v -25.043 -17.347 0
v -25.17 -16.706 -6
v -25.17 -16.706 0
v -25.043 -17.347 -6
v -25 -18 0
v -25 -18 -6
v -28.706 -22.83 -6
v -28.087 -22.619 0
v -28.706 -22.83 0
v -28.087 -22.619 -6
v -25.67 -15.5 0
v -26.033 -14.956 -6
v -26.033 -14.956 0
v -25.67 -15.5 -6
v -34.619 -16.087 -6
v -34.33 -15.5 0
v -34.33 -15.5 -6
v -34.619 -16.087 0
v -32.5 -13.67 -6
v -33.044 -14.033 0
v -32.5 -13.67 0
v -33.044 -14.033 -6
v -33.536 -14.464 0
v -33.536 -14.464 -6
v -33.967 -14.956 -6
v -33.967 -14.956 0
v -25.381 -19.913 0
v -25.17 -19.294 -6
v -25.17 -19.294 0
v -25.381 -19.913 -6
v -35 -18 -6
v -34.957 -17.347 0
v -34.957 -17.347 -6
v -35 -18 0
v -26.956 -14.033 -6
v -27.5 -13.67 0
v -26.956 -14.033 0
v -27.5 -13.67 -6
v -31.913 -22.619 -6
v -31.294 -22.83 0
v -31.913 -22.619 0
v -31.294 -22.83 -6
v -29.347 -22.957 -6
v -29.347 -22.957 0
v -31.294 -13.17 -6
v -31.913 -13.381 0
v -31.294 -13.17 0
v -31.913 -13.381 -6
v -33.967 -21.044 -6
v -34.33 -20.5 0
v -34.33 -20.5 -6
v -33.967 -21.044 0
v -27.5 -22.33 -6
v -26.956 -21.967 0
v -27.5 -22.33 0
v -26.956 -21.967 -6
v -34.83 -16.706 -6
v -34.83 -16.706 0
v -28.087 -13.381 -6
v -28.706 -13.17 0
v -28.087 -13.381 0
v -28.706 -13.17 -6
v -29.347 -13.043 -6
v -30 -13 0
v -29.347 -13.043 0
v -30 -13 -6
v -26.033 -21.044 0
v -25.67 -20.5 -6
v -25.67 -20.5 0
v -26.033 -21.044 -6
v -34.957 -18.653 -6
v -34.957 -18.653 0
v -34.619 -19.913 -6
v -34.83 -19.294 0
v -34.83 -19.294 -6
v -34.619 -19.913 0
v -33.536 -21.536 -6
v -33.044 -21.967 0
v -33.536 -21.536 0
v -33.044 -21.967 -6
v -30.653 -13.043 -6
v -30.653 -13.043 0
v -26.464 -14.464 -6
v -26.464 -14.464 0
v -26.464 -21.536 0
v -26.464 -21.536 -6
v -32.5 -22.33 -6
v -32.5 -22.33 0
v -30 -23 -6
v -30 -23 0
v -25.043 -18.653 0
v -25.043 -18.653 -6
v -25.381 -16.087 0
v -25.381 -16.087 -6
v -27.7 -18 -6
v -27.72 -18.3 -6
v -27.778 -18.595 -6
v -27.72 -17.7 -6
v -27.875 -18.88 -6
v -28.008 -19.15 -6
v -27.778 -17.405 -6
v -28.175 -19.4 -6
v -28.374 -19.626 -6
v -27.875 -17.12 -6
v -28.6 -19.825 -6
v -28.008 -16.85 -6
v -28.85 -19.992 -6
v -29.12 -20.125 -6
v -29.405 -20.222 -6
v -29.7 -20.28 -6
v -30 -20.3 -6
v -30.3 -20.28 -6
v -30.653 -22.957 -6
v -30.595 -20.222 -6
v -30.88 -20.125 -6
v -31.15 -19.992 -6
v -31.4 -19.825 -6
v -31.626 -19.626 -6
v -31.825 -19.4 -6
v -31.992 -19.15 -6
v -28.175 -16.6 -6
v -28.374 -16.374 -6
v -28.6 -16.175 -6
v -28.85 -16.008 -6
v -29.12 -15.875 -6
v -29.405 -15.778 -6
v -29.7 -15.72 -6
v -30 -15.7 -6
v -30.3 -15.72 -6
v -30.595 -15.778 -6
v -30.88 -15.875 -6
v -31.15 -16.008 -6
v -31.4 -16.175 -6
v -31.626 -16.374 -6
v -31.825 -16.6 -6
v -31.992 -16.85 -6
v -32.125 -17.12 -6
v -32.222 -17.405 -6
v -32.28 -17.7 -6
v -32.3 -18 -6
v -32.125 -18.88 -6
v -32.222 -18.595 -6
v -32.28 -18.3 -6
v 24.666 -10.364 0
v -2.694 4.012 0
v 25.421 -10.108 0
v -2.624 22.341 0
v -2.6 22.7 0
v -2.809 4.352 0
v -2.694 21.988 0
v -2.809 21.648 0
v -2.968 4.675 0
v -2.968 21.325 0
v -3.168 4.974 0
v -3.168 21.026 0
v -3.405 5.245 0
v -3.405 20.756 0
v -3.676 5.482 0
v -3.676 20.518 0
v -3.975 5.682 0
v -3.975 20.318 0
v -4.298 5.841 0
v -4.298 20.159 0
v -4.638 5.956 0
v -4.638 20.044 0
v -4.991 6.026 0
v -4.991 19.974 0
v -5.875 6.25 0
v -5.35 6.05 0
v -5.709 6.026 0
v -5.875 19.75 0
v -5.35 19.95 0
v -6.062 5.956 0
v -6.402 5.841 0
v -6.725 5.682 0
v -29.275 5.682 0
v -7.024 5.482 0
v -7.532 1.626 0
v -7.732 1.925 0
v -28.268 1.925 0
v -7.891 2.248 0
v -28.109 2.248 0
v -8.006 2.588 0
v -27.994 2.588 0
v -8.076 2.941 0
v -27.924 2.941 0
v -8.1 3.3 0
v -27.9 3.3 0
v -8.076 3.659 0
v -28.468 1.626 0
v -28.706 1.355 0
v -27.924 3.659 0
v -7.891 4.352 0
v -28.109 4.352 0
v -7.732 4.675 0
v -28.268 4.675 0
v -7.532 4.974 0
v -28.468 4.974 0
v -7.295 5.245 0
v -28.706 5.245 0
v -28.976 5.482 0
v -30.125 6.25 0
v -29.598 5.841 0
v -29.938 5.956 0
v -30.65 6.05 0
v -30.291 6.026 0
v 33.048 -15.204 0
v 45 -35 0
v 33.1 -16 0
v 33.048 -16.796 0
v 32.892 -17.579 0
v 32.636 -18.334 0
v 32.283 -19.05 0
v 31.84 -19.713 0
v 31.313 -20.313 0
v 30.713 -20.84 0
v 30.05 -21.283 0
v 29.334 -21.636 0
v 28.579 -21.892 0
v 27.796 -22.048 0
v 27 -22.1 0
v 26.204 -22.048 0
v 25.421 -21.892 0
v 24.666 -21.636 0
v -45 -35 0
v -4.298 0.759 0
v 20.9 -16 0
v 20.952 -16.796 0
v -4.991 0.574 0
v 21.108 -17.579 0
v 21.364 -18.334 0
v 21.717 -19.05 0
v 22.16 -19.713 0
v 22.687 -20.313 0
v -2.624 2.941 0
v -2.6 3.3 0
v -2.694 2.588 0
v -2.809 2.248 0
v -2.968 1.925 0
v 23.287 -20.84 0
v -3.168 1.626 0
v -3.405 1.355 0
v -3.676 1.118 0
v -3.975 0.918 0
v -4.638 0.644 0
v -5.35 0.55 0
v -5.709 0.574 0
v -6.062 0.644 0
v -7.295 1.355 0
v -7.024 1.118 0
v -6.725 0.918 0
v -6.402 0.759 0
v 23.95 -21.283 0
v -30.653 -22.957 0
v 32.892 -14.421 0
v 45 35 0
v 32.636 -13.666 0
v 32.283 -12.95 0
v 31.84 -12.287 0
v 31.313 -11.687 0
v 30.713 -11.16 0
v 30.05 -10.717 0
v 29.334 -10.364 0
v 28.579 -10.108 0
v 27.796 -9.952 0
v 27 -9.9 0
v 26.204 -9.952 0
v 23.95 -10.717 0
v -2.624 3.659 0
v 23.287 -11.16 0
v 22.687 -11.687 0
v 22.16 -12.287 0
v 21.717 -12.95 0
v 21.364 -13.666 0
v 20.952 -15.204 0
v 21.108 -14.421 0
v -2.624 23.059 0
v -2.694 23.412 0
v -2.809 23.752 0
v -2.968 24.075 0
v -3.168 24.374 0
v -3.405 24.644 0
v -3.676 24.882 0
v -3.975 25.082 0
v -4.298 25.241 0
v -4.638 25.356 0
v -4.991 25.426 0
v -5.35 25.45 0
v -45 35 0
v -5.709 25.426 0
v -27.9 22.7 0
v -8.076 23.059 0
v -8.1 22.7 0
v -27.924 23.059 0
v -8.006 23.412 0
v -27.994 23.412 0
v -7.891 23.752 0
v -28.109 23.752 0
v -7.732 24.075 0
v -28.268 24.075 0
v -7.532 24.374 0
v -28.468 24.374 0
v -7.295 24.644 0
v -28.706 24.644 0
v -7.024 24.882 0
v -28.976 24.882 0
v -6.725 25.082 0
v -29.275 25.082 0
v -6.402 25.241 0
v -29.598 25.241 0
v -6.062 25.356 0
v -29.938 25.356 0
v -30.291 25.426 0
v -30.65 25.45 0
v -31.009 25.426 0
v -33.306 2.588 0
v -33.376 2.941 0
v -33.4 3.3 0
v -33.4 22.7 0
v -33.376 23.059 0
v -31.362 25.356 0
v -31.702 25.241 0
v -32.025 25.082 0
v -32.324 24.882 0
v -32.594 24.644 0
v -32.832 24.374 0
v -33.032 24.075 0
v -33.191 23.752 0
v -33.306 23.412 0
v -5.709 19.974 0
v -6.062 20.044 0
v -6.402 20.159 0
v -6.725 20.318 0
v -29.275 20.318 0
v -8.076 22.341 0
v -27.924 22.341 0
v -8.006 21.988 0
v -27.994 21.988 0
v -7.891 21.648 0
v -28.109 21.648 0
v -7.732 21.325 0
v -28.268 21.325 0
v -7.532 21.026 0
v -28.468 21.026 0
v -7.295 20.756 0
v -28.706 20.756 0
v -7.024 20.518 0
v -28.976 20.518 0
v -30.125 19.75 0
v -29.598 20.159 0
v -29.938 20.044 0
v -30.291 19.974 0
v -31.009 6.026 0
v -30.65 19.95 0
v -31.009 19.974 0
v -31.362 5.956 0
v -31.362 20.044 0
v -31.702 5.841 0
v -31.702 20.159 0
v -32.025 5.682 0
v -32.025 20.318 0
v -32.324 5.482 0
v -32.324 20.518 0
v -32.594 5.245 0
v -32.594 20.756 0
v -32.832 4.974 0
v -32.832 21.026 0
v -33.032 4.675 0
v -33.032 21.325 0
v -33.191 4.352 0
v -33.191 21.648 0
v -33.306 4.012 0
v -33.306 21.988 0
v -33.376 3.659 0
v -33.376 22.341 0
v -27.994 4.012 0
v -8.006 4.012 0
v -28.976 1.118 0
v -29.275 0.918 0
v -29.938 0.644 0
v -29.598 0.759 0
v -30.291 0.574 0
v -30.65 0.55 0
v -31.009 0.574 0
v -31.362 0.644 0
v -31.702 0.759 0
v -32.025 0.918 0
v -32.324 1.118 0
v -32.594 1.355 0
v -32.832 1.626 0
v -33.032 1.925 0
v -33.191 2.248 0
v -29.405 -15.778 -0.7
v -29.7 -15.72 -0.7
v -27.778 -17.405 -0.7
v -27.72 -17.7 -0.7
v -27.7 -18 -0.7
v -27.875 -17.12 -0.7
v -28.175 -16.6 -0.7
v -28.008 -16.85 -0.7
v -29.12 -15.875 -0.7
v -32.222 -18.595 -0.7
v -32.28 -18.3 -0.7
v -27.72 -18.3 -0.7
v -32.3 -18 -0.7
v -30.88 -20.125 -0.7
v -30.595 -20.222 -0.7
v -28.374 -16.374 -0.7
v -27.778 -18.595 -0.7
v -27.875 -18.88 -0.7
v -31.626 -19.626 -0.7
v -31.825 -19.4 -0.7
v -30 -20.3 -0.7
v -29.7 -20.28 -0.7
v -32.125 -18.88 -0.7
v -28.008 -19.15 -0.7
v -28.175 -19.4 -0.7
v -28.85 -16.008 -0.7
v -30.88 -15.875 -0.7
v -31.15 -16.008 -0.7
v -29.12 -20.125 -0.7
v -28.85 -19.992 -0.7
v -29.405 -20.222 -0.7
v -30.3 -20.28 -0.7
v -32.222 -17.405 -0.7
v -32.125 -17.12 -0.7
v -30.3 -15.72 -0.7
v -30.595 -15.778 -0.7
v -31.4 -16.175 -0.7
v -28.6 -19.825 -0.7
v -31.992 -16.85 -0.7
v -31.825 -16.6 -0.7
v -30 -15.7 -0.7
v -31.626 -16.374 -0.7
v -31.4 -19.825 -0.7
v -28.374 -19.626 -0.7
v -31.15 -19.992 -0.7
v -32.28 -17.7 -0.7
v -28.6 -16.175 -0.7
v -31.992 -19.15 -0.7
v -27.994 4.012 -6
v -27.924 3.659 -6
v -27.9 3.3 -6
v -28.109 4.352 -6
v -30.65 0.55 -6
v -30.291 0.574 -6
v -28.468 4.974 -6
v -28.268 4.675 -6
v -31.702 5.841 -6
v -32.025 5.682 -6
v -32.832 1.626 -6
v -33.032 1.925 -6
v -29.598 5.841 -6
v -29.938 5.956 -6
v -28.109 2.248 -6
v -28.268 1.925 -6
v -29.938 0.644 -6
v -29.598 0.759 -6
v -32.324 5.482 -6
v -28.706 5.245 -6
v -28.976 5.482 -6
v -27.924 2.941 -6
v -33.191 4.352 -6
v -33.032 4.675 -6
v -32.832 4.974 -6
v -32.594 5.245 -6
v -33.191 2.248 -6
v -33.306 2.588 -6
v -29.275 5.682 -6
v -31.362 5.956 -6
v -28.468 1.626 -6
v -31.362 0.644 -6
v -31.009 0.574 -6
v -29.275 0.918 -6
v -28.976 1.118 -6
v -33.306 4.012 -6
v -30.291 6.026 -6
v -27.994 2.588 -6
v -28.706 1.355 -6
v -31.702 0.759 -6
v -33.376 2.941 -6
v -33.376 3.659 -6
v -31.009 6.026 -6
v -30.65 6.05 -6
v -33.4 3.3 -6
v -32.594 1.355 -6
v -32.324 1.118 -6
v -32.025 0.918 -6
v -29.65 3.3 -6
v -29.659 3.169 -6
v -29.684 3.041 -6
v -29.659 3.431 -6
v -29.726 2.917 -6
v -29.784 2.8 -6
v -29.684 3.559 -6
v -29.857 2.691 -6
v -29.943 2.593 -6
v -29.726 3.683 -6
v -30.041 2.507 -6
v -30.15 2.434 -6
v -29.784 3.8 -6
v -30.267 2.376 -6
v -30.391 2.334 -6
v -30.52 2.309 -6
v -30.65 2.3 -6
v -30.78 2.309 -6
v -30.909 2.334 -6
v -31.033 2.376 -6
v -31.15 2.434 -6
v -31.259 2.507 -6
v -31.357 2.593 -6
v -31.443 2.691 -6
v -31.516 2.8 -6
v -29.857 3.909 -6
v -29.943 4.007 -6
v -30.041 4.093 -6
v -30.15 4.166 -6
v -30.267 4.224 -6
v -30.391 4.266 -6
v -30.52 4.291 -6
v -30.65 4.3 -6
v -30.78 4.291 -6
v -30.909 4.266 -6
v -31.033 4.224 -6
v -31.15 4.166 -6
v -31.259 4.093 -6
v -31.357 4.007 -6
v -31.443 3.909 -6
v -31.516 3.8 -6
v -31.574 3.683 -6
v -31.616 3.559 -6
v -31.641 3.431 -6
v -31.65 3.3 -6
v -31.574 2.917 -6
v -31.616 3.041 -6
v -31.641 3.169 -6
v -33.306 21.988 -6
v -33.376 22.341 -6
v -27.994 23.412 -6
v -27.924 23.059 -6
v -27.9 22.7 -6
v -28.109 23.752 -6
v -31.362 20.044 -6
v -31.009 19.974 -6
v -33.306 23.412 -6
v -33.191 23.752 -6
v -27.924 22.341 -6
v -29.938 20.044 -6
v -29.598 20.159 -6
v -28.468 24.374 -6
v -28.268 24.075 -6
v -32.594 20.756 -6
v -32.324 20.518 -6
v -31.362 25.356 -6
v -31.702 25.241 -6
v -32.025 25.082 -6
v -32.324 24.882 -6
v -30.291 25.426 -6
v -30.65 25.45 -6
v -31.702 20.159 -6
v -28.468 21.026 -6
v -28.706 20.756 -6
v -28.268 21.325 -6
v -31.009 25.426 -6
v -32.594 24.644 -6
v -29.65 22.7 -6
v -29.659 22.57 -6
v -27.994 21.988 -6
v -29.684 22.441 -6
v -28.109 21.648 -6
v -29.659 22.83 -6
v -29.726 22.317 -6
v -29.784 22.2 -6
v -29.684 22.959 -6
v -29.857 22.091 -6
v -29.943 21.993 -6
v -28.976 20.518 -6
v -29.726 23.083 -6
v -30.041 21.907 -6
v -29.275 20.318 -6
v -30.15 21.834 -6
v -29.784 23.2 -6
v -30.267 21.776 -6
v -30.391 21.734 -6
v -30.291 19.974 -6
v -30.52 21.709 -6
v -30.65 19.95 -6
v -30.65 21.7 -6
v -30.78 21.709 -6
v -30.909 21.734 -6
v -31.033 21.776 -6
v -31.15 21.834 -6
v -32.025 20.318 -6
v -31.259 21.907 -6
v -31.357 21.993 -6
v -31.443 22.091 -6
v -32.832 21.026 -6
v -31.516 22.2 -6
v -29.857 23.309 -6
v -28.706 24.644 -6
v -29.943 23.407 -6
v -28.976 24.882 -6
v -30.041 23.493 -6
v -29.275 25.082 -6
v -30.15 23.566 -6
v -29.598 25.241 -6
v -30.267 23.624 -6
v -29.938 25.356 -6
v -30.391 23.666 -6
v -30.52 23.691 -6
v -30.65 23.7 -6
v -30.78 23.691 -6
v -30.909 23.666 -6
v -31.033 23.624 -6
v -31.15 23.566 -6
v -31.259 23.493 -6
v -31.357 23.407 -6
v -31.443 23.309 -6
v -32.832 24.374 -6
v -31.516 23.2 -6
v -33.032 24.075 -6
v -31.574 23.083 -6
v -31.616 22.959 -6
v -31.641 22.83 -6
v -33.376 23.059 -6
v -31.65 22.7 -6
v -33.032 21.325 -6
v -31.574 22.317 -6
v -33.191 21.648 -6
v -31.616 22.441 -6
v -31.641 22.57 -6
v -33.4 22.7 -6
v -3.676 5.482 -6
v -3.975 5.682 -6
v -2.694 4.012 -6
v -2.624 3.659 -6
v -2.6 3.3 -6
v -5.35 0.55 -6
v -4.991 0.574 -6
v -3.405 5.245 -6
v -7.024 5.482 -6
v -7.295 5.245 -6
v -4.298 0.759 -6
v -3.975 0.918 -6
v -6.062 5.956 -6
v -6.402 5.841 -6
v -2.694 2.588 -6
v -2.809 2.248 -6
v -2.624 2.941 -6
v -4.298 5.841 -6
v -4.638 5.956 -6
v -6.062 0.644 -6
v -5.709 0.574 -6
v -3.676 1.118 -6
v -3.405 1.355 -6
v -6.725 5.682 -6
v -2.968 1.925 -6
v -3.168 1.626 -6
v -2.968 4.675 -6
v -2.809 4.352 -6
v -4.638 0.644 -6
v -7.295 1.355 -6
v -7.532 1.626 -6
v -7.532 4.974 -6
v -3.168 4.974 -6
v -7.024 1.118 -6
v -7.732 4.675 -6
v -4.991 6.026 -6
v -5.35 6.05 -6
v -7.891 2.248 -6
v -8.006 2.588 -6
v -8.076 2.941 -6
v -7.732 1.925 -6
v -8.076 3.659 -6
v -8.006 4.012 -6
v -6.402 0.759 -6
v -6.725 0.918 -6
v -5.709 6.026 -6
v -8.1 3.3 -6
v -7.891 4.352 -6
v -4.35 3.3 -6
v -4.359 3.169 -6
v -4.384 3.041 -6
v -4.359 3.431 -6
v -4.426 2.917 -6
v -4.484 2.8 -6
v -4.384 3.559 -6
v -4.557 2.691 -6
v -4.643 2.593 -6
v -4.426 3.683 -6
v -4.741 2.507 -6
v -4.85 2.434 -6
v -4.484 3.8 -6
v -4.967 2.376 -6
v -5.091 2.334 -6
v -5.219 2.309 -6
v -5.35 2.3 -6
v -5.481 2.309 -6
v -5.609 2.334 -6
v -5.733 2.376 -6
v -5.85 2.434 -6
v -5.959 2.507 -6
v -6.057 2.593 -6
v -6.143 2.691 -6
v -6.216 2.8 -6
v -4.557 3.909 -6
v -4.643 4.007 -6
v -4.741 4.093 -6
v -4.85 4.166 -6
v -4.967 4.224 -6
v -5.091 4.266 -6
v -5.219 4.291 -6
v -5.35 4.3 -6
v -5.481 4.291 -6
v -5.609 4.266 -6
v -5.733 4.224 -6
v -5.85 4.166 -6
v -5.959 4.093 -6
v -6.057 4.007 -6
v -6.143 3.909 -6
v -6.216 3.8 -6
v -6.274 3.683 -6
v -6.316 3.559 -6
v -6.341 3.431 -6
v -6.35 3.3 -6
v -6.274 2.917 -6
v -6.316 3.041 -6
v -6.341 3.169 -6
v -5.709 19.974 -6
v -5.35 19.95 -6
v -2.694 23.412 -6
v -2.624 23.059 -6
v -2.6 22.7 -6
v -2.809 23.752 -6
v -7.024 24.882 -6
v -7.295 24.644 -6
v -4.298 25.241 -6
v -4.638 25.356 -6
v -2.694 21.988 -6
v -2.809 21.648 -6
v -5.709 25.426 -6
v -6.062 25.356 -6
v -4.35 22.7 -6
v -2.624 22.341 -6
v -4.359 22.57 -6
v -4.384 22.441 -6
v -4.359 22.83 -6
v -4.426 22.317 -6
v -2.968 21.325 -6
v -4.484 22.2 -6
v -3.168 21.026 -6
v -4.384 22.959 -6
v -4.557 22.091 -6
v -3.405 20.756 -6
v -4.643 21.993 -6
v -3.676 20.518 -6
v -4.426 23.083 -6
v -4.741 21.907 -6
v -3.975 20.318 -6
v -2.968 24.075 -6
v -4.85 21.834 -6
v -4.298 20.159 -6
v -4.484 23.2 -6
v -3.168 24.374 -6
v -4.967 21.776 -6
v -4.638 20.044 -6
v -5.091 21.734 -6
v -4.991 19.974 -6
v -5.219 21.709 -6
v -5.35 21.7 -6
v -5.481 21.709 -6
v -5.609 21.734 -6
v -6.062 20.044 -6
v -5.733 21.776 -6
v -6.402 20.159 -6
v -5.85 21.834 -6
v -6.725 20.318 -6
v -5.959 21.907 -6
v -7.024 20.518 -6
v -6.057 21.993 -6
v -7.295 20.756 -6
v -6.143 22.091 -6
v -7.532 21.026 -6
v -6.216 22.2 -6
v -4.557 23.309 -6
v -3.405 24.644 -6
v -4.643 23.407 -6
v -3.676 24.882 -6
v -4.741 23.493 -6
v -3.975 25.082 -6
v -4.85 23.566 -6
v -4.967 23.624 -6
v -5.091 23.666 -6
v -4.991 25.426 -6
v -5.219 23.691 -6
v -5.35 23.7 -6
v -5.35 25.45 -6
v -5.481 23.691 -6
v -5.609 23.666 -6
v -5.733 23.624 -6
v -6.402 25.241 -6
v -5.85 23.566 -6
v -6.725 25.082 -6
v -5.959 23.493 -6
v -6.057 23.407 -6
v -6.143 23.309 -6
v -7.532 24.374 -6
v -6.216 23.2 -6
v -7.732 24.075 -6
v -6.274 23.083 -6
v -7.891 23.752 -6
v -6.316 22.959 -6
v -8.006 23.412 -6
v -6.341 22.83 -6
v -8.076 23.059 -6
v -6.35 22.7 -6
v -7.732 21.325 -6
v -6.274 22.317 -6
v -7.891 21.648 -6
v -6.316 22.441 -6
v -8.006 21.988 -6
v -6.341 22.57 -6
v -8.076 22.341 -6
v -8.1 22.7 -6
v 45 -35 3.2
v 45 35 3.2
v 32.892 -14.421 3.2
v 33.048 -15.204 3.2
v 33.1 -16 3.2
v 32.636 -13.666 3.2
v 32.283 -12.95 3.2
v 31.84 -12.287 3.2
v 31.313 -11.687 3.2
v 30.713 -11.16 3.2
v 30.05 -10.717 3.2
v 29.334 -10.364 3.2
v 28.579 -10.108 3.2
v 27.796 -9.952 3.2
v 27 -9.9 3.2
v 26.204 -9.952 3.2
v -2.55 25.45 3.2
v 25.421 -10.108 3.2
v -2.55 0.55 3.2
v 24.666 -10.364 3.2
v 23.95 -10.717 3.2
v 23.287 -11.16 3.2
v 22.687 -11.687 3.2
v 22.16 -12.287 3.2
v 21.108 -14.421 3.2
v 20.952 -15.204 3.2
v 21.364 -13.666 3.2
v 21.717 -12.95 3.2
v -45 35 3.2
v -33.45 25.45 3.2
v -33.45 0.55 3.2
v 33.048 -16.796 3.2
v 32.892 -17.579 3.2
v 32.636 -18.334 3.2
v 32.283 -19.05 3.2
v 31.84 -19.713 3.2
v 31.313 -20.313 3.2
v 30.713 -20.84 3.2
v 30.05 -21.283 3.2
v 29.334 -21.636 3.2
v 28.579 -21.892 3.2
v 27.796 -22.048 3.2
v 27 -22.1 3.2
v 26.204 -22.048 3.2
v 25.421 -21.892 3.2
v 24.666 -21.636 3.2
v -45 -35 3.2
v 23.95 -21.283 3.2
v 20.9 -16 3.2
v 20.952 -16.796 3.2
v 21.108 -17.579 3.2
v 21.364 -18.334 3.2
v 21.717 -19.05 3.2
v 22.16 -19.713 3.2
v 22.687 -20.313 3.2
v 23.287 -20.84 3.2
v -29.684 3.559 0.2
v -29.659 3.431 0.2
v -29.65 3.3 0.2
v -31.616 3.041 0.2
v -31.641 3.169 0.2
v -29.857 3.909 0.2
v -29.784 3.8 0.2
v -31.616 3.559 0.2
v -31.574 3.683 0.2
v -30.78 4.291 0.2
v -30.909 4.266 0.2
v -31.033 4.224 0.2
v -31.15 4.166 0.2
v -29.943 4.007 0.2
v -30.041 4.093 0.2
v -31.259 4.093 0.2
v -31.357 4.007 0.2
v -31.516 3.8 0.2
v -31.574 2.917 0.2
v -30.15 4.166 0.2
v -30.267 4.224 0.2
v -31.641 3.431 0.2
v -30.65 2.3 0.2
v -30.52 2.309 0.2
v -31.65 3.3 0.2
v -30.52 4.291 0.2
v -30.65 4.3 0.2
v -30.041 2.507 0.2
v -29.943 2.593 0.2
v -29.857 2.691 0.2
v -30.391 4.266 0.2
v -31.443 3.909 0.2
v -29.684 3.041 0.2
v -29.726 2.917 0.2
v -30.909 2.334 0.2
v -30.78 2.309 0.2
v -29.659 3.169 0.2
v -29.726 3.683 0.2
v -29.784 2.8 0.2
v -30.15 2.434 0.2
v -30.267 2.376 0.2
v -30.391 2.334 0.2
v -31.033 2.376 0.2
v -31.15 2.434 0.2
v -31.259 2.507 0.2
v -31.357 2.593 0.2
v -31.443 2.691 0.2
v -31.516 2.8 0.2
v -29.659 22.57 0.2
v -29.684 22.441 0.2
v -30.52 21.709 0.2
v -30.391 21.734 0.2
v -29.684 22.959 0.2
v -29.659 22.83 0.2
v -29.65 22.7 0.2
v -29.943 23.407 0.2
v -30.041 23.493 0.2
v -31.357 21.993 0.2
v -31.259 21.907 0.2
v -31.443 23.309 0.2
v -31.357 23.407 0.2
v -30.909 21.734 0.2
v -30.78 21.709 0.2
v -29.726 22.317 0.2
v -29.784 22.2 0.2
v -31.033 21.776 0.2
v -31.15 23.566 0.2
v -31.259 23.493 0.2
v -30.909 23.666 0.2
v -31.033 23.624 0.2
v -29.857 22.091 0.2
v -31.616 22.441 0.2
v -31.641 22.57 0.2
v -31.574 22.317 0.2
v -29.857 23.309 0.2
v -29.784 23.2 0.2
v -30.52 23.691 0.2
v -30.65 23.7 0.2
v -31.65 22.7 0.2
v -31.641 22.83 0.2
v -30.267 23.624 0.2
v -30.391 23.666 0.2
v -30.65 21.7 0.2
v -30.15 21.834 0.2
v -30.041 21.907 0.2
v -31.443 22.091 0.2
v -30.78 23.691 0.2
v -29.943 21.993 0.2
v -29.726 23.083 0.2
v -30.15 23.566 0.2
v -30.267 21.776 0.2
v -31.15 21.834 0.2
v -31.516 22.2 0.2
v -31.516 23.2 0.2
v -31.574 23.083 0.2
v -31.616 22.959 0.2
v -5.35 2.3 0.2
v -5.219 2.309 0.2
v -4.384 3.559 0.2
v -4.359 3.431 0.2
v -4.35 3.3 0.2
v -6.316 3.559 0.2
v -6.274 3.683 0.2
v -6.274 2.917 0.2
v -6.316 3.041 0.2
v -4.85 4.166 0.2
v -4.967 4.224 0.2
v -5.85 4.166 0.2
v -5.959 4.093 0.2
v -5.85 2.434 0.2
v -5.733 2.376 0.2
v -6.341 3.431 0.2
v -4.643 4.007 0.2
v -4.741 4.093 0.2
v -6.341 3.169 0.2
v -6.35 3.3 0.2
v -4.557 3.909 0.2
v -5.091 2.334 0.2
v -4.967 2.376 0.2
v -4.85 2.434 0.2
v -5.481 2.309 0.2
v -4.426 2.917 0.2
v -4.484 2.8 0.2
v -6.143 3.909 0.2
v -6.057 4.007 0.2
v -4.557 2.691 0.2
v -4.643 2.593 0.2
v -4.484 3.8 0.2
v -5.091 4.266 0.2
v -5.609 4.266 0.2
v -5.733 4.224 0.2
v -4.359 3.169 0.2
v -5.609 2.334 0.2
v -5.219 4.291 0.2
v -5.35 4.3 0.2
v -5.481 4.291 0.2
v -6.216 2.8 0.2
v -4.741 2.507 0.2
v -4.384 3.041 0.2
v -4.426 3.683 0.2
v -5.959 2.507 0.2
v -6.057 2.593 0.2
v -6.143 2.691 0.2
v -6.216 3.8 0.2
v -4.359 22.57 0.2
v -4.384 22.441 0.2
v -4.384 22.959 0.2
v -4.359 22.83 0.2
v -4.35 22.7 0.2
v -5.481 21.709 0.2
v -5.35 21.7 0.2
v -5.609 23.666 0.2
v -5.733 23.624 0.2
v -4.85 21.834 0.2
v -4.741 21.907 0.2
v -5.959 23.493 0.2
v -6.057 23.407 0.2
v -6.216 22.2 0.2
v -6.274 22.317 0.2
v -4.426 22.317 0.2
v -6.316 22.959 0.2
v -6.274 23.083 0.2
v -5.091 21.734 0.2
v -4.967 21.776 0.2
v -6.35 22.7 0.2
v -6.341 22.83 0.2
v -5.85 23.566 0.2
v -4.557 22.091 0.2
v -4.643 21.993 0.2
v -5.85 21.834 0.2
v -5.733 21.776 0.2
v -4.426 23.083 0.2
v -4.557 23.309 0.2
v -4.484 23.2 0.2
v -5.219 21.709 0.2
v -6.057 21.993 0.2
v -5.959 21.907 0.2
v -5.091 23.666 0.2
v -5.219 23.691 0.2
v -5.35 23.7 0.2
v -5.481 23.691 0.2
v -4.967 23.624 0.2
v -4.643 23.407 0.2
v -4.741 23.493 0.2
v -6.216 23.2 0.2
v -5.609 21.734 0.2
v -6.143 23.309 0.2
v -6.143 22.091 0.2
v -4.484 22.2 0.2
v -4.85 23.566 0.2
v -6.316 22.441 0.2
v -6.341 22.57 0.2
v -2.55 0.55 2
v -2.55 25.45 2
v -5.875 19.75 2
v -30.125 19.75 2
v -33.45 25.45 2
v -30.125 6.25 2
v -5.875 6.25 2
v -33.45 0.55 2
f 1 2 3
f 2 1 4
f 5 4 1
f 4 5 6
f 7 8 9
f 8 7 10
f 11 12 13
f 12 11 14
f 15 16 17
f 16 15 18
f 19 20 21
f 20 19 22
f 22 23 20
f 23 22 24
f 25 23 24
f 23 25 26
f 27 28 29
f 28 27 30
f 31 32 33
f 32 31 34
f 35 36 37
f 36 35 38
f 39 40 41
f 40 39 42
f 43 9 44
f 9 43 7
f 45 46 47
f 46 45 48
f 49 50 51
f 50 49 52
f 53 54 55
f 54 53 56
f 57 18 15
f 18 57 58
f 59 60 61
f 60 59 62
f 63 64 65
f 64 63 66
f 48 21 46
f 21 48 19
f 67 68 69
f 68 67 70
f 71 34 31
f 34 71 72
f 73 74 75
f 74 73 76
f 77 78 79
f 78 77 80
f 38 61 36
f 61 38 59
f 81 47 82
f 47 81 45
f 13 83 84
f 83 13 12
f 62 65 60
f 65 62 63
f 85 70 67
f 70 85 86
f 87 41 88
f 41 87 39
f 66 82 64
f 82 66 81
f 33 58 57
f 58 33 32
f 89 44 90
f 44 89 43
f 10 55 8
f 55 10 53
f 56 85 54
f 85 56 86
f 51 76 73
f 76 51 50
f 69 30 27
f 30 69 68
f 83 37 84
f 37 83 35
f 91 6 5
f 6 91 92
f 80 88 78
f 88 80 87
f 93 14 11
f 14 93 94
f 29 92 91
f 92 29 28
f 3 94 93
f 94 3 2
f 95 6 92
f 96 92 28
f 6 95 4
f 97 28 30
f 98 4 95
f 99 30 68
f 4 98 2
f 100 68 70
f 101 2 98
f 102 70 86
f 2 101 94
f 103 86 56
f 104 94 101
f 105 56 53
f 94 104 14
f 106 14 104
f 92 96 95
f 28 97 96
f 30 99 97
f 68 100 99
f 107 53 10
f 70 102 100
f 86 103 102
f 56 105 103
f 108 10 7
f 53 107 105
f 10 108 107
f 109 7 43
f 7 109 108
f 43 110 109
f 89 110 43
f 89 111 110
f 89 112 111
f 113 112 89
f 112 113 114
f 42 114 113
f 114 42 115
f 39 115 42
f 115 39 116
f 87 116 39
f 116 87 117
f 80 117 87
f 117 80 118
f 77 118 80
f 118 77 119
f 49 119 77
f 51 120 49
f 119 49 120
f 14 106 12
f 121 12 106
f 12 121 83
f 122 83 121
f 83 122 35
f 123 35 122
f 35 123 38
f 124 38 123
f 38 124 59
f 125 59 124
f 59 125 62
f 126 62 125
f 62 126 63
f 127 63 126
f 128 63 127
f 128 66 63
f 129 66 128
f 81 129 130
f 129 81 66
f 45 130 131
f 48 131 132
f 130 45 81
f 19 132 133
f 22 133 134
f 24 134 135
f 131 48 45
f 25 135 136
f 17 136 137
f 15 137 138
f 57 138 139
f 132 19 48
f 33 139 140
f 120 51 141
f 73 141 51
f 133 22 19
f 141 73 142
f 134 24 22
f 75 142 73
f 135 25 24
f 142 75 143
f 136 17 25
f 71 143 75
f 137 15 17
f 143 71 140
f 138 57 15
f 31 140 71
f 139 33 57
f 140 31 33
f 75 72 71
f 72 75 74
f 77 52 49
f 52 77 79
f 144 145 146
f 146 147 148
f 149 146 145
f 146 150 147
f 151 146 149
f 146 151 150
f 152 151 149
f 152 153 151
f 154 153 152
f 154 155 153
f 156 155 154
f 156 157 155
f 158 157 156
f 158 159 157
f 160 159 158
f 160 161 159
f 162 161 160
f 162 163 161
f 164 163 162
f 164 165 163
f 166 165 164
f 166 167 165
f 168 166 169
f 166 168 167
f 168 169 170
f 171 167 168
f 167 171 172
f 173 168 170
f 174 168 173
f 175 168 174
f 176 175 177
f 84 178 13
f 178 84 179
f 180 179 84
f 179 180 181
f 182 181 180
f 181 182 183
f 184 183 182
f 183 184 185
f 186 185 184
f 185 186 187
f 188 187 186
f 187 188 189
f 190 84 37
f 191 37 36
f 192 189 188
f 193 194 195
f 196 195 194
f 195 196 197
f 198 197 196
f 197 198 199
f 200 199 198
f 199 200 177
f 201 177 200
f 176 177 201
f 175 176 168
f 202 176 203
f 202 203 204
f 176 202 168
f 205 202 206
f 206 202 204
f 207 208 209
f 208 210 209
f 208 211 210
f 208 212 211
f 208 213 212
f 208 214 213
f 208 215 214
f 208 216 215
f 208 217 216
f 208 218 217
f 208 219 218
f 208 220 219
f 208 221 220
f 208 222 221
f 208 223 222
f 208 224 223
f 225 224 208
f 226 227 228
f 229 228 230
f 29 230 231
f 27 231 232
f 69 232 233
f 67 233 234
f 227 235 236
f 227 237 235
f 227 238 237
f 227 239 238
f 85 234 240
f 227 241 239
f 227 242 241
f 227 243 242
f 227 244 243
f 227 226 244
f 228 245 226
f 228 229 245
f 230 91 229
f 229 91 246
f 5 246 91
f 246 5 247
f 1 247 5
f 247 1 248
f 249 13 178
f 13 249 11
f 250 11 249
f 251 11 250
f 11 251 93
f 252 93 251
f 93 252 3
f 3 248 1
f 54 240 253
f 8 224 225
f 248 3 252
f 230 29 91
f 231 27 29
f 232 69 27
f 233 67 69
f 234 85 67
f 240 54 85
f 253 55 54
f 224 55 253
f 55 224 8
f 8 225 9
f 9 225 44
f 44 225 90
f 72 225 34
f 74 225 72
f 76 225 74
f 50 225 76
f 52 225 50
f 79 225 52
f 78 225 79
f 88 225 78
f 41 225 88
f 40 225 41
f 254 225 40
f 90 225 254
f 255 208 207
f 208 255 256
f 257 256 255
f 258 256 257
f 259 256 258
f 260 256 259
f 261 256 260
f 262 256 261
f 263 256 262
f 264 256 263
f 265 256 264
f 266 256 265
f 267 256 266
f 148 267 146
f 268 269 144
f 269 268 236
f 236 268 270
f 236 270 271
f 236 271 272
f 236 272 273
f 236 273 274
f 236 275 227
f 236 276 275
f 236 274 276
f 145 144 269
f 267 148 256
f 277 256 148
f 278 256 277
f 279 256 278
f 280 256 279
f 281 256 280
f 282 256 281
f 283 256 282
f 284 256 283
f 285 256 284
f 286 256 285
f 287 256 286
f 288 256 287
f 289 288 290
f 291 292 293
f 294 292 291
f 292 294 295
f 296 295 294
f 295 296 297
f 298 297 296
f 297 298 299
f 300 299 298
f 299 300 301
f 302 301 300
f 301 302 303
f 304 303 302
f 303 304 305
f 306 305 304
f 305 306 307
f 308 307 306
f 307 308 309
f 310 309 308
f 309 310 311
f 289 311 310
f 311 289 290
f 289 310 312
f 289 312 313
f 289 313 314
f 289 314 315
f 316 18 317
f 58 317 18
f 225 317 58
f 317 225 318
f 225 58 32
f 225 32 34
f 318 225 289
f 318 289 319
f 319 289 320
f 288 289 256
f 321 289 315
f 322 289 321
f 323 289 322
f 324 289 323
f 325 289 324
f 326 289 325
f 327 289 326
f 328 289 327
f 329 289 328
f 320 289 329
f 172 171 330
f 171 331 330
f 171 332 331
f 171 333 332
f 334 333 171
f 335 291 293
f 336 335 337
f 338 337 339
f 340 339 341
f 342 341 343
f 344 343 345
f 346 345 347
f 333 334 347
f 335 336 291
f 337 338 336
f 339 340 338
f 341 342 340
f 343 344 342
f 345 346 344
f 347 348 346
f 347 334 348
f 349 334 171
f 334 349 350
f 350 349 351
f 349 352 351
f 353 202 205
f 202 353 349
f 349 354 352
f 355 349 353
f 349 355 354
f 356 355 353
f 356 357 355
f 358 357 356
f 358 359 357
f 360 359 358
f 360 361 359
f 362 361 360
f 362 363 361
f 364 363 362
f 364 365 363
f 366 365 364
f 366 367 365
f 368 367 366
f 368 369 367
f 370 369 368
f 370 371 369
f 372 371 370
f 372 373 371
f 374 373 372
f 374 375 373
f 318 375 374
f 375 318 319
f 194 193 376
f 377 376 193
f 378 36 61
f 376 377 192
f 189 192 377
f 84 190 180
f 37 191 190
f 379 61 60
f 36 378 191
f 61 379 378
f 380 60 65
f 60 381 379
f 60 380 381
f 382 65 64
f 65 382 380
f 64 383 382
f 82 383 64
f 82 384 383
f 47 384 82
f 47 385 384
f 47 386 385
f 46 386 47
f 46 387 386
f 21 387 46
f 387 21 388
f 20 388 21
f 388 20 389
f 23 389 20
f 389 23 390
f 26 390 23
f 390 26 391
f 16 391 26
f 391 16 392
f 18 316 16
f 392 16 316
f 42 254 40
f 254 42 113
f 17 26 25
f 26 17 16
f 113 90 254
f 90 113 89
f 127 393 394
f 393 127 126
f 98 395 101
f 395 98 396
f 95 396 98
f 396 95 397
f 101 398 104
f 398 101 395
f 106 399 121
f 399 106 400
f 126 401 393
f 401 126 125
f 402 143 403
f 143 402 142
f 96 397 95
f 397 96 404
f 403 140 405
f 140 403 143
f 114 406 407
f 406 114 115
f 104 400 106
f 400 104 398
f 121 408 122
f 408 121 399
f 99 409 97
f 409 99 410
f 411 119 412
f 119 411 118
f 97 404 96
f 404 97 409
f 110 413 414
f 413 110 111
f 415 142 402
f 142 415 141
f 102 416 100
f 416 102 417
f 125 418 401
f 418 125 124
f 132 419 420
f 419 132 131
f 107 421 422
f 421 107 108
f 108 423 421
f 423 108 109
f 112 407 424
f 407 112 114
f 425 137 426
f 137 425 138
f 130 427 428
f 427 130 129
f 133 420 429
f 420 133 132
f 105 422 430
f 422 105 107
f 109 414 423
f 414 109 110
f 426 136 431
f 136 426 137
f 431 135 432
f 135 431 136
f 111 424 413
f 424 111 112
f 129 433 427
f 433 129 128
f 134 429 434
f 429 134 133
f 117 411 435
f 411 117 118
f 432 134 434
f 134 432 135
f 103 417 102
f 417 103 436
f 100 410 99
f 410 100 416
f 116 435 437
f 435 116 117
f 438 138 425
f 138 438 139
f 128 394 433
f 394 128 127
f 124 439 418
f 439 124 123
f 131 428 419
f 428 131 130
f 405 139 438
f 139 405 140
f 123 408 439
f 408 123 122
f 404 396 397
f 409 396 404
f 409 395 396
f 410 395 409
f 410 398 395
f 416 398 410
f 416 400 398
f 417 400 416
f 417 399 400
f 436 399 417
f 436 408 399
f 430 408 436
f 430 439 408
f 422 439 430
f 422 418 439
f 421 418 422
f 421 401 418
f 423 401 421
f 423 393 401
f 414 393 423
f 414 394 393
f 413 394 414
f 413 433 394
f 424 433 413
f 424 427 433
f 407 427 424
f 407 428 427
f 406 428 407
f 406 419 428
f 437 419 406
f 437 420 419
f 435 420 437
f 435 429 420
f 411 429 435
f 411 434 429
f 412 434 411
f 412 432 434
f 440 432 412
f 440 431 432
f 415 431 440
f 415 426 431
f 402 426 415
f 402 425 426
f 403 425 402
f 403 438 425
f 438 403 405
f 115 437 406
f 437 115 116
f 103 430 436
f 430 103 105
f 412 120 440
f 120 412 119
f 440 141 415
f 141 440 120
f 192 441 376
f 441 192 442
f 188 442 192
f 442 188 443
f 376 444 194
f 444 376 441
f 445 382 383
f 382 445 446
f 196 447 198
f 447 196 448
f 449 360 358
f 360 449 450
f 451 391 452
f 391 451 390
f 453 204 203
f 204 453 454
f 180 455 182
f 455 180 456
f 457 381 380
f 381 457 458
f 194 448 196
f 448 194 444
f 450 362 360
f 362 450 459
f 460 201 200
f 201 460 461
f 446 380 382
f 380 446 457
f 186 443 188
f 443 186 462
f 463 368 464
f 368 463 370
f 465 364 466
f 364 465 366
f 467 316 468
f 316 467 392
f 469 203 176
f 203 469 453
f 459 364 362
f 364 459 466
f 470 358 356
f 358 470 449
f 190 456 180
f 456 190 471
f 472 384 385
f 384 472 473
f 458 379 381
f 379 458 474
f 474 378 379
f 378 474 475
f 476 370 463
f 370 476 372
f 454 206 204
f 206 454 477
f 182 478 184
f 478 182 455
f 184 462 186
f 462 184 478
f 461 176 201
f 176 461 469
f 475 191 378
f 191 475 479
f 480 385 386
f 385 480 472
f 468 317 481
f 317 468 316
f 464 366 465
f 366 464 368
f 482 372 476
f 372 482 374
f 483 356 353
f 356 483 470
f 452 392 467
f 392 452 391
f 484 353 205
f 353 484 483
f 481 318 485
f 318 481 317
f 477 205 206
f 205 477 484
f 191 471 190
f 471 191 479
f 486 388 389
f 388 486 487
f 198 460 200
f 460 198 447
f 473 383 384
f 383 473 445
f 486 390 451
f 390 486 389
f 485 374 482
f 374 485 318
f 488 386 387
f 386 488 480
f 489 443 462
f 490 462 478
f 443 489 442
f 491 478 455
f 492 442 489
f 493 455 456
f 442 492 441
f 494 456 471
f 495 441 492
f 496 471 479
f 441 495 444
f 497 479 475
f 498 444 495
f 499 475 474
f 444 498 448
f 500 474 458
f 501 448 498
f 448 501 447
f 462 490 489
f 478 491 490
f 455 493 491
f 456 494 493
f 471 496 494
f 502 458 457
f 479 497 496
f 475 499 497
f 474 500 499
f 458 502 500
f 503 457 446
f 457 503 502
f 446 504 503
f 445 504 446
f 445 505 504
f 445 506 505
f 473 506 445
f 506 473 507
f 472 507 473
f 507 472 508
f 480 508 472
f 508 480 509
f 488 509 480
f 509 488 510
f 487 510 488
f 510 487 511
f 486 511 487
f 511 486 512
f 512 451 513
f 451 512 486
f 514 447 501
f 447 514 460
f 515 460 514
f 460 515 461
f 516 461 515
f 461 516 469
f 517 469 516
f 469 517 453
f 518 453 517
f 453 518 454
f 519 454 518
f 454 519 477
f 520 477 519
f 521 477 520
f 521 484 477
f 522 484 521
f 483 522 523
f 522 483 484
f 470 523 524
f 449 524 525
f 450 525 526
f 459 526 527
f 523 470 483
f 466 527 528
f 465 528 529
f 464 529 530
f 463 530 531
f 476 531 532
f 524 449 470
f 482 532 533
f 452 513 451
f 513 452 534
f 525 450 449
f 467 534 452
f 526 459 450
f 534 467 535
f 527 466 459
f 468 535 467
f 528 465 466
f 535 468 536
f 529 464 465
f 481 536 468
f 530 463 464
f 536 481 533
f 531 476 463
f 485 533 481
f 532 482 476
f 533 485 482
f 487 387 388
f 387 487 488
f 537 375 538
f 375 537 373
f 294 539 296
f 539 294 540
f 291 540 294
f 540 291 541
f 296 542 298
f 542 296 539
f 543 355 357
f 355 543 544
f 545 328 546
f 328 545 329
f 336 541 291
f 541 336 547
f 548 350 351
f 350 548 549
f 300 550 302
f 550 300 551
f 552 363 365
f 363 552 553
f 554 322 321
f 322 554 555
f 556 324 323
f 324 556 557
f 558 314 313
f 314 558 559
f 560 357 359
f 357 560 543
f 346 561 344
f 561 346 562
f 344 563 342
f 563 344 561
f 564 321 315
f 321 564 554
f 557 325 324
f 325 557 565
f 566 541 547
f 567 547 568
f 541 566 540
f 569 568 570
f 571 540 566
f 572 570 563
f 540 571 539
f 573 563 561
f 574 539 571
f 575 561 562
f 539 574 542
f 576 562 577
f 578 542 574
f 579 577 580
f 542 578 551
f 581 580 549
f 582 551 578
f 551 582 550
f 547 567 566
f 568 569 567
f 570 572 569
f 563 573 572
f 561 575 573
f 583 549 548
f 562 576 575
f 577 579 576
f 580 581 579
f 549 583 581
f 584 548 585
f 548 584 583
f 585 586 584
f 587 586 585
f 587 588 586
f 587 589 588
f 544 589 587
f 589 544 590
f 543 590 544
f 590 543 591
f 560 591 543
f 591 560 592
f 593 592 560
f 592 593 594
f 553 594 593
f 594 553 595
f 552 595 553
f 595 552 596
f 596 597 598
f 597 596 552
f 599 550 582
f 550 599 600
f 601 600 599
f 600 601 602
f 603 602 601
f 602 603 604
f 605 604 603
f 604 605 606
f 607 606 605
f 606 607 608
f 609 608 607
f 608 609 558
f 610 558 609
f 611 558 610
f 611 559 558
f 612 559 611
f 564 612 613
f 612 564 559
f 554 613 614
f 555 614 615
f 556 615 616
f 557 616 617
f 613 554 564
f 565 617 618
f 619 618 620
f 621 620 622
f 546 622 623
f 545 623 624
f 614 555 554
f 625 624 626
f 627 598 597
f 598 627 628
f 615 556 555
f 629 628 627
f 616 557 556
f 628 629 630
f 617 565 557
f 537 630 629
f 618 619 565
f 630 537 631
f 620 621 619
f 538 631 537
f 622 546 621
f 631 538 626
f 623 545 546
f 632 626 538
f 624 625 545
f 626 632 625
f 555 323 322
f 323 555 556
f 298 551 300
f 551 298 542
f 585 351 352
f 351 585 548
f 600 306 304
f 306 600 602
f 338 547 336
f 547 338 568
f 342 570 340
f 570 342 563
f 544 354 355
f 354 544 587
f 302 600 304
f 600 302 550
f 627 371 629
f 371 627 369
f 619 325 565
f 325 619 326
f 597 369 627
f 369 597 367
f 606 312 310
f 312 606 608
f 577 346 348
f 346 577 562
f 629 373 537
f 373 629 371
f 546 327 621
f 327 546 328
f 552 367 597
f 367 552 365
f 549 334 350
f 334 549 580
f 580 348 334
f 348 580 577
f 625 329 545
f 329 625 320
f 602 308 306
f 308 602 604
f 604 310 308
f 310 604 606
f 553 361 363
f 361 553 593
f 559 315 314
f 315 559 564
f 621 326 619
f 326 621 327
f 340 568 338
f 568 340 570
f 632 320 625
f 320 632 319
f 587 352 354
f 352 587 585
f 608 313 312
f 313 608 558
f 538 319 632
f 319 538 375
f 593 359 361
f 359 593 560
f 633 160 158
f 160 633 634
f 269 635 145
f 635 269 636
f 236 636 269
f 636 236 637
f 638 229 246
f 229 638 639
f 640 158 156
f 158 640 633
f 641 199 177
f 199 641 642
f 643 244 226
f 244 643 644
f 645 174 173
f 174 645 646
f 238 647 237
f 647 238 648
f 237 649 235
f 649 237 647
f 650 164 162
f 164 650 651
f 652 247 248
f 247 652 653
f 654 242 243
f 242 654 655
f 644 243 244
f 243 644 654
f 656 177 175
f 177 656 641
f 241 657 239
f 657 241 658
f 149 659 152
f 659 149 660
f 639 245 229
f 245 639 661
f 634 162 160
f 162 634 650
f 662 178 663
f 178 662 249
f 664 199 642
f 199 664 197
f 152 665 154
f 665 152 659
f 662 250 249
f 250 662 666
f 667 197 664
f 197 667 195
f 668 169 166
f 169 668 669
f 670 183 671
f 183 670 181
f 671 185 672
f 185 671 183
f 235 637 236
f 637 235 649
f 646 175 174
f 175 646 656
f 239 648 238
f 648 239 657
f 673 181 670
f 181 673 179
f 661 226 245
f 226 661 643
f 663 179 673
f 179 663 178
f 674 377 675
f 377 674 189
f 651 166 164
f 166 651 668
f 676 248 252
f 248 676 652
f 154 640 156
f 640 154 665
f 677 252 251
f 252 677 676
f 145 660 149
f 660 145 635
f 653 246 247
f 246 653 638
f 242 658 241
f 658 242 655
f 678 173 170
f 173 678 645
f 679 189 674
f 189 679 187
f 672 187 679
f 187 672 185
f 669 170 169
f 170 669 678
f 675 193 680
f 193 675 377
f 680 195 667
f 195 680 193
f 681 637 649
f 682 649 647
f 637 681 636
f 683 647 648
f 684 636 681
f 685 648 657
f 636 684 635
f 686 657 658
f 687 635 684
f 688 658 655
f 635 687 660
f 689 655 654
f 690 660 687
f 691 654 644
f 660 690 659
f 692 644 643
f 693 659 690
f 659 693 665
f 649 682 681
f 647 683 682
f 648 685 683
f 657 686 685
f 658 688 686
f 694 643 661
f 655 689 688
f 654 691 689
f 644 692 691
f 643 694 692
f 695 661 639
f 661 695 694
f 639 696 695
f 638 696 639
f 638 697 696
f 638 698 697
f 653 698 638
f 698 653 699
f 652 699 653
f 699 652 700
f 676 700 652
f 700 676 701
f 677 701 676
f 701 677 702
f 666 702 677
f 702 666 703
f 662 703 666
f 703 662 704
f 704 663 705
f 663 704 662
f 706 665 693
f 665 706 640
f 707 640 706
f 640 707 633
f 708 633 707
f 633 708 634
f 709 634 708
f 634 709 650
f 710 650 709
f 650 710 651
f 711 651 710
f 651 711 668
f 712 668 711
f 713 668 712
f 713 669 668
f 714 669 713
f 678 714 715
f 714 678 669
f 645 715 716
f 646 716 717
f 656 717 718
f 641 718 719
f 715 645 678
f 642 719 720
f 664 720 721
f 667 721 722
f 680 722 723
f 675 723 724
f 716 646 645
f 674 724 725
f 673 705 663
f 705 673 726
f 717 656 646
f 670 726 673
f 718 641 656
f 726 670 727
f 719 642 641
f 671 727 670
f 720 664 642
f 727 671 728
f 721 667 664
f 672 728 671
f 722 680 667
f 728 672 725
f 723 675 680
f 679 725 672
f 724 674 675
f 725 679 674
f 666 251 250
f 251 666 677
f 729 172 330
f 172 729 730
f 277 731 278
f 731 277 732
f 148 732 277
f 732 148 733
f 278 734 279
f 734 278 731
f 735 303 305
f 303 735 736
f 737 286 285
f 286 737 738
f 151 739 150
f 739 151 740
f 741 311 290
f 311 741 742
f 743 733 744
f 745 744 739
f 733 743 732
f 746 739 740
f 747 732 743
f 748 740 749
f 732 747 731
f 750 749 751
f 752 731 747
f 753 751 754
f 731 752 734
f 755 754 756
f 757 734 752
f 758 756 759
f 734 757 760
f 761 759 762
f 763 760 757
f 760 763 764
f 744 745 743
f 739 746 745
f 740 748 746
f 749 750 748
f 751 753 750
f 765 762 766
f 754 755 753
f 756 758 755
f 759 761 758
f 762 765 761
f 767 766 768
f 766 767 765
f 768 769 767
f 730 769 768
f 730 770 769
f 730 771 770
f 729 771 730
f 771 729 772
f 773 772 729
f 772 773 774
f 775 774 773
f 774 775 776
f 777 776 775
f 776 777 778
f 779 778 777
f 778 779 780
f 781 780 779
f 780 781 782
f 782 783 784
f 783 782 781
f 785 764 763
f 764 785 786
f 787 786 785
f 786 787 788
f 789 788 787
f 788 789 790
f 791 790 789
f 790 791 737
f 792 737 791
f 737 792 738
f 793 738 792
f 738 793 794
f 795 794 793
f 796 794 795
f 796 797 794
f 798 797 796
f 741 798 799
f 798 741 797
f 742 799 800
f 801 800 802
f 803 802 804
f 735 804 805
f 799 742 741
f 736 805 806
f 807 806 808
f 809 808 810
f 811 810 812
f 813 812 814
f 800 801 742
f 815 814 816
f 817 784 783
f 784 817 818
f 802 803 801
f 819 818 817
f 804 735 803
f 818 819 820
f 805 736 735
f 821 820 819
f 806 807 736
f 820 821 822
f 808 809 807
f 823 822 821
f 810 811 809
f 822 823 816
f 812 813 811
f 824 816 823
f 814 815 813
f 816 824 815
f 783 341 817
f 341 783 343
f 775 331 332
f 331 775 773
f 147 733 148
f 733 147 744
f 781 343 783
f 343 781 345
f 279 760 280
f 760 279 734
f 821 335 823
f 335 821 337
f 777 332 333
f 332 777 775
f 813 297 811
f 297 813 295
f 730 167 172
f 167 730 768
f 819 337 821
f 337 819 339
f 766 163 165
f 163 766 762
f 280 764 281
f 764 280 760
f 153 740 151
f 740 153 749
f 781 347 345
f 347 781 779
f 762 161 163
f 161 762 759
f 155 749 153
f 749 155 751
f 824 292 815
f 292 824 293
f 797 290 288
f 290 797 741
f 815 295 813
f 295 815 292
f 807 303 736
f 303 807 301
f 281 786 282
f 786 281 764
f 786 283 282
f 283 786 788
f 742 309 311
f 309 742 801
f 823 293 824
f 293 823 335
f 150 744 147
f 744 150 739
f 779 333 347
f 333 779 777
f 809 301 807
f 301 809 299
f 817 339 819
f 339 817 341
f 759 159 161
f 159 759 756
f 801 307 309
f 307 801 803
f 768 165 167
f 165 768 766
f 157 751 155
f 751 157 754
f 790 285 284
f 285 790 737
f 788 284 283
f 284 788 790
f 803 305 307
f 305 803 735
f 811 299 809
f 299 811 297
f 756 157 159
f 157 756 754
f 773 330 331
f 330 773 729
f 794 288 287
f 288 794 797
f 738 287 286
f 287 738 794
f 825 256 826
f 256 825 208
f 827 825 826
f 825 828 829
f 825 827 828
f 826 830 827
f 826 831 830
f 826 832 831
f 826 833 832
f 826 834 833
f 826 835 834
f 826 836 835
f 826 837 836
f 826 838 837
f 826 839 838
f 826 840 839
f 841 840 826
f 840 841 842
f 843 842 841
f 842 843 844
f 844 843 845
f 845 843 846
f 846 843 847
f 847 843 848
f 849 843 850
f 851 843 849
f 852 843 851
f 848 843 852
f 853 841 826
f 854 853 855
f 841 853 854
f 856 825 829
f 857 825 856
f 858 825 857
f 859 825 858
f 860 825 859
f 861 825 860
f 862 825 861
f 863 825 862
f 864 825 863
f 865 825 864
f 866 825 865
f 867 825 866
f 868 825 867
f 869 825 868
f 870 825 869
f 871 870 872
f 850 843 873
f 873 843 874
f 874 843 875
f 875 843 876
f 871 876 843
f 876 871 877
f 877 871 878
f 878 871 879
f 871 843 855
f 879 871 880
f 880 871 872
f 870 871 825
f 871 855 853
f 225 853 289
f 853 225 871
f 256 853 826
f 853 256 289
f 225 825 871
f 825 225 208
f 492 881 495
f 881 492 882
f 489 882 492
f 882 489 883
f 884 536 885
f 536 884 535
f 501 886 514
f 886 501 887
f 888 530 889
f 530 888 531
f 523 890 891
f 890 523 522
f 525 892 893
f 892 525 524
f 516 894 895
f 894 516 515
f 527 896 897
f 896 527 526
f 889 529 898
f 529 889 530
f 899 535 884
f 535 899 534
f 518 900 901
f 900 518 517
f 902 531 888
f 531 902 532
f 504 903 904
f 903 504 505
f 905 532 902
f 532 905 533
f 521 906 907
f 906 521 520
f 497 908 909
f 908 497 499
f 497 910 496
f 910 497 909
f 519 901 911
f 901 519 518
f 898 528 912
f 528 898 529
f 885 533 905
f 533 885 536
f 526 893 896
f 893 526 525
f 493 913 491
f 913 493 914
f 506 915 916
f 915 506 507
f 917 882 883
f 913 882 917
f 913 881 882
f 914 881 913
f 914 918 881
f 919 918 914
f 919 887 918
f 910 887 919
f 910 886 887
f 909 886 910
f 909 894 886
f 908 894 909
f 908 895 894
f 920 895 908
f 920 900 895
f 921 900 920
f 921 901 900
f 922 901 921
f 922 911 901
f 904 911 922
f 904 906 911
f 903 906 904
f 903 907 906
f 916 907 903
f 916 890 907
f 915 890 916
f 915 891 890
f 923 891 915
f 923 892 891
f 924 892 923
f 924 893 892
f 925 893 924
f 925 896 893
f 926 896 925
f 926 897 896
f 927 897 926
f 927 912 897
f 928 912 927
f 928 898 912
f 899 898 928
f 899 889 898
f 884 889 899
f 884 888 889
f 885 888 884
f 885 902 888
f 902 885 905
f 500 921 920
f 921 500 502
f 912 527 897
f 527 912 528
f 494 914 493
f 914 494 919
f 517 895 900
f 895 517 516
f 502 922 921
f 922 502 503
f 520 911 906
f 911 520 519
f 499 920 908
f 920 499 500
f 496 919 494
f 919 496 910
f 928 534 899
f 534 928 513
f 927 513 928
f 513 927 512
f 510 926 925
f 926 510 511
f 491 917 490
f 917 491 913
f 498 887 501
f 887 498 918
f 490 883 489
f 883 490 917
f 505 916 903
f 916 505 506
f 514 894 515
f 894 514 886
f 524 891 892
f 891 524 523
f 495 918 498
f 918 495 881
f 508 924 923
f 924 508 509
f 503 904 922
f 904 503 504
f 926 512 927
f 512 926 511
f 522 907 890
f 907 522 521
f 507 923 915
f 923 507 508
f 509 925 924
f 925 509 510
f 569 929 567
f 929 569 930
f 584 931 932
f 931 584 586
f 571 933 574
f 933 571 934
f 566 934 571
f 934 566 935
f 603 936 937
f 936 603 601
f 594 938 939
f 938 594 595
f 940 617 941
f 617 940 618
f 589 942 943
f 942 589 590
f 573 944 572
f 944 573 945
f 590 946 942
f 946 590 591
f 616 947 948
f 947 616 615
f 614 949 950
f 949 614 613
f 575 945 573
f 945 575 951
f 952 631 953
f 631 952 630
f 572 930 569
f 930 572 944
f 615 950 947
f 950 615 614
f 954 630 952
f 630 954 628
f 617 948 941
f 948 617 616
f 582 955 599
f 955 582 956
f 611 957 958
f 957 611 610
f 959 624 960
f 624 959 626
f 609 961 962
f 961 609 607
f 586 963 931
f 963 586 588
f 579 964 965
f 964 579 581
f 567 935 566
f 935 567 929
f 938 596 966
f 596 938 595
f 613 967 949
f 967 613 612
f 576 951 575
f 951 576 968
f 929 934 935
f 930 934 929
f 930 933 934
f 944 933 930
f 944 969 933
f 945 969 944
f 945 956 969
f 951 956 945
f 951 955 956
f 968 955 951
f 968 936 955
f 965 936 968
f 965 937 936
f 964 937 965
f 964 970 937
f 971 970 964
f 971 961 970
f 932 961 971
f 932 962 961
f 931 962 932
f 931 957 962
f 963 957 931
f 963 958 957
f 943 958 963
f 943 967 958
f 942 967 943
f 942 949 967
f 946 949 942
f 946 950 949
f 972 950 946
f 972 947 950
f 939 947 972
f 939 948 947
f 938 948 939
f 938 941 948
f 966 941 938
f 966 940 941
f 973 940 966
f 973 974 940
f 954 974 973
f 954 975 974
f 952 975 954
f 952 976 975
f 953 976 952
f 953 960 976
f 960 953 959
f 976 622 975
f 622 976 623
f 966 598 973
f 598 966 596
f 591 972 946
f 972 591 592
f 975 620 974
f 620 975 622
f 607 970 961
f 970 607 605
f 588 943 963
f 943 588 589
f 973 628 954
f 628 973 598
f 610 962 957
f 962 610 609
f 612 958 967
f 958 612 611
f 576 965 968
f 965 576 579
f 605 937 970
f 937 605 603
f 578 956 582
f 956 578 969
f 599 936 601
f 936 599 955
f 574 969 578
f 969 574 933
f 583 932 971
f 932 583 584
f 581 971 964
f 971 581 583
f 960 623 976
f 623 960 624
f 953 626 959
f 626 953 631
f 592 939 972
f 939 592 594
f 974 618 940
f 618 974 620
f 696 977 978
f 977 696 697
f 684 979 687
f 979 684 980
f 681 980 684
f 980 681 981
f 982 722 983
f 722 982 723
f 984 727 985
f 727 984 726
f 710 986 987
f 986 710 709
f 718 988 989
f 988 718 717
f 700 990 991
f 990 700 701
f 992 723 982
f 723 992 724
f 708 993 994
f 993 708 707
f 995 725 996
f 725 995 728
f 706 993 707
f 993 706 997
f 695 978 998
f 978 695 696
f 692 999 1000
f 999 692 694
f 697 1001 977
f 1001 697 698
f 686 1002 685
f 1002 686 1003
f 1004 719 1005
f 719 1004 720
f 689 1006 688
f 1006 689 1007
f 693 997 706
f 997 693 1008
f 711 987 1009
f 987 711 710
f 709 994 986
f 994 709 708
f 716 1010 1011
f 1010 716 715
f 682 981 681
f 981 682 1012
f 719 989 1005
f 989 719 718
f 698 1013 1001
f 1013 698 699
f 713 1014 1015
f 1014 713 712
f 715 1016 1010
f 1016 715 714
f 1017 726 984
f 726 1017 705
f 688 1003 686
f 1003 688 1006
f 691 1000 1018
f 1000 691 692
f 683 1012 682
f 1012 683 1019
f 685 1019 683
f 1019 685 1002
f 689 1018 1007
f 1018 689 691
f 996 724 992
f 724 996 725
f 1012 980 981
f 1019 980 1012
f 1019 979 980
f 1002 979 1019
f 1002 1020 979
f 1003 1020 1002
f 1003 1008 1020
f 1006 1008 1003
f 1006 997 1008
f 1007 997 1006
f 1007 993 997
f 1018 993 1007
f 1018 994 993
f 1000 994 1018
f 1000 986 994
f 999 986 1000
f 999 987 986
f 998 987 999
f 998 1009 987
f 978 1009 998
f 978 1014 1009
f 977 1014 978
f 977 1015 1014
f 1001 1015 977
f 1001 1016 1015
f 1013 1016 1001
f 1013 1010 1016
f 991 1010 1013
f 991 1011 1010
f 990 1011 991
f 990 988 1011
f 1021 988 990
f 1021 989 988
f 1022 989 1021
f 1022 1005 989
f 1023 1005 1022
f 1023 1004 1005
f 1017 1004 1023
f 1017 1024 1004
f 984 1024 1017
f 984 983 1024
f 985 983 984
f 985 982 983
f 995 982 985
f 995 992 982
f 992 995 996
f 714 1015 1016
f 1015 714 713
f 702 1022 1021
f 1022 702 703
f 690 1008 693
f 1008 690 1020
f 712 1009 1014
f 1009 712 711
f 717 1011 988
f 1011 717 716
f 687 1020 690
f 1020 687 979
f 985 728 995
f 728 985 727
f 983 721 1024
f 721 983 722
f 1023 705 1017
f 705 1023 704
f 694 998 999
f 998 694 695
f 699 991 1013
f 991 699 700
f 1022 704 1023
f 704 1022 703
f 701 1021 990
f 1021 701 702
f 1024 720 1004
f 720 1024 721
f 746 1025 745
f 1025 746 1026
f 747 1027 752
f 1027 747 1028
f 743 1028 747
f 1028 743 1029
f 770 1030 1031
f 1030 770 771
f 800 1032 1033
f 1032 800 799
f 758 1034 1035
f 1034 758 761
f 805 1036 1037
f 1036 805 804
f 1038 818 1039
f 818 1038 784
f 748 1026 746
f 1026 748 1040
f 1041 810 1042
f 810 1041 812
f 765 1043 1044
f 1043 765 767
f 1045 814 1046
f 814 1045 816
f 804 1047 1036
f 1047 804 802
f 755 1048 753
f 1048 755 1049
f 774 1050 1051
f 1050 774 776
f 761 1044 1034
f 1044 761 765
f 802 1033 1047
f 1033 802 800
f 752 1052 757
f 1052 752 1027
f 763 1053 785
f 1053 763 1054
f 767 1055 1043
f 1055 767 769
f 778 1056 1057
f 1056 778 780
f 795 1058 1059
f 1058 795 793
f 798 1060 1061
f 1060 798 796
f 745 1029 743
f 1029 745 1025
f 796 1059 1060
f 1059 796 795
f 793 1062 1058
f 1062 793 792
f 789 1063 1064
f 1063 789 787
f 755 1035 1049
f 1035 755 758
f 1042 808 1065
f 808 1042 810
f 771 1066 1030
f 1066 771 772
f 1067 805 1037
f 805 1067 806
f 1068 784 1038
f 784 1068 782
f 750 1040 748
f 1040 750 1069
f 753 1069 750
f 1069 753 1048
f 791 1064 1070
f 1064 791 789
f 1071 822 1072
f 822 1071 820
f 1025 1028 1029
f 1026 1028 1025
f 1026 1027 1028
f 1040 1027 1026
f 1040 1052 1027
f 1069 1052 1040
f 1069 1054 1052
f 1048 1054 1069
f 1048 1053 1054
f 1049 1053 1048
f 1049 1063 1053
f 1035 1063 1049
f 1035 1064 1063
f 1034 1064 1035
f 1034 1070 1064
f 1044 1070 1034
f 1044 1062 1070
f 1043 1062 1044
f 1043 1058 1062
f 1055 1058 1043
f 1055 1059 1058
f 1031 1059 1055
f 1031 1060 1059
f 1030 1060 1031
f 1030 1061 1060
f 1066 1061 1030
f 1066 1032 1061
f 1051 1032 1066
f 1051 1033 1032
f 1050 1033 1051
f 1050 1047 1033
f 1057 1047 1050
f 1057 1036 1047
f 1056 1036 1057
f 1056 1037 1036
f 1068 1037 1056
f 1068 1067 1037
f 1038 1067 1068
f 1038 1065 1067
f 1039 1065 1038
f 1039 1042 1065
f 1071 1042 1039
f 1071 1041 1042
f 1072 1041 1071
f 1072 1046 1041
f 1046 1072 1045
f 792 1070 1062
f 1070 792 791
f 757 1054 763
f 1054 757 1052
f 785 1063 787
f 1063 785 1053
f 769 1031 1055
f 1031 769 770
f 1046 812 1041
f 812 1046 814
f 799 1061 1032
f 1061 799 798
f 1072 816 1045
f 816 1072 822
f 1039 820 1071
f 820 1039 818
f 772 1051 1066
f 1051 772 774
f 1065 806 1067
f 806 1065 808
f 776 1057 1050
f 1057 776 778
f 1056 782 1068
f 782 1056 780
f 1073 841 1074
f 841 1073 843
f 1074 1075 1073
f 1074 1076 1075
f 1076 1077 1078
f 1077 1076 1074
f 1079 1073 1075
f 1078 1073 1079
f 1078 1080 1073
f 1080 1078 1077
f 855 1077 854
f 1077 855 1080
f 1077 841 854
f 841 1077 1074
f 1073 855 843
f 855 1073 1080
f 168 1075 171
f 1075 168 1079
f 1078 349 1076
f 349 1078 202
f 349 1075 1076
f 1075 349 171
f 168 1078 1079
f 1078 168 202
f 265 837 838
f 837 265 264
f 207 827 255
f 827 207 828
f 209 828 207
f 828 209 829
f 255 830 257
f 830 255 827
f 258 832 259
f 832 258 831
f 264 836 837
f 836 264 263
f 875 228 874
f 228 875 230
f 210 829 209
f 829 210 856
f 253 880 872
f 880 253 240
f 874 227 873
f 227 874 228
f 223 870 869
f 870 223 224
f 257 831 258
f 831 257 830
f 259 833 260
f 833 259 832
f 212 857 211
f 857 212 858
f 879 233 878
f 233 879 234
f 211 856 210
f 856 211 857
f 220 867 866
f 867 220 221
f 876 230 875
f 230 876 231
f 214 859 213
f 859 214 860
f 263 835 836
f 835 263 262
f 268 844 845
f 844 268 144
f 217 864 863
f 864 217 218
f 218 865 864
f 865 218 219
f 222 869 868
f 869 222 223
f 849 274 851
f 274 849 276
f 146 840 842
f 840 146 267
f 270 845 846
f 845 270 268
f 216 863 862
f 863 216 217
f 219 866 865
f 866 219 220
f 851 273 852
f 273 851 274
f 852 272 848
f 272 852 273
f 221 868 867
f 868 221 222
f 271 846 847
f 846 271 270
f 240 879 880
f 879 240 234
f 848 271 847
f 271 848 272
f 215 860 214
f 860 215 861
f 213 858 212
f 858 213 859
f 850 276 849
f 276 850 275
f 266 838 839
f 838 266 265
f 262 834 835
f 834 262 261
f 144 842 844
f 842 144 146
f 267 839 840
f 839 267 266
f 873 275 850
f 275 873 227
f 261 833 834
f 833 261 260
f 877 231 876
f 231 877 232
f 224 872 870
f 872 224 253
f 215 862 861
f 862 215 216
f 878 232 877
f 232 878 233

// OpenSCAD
// Single-display coupon: shared production cuts, including the +2 mm viewport
// toward the flex side and 2 mm rear screen/header relief depths.
use <ignitron-enclosure-v2.scad>;

fit_test_mini();
